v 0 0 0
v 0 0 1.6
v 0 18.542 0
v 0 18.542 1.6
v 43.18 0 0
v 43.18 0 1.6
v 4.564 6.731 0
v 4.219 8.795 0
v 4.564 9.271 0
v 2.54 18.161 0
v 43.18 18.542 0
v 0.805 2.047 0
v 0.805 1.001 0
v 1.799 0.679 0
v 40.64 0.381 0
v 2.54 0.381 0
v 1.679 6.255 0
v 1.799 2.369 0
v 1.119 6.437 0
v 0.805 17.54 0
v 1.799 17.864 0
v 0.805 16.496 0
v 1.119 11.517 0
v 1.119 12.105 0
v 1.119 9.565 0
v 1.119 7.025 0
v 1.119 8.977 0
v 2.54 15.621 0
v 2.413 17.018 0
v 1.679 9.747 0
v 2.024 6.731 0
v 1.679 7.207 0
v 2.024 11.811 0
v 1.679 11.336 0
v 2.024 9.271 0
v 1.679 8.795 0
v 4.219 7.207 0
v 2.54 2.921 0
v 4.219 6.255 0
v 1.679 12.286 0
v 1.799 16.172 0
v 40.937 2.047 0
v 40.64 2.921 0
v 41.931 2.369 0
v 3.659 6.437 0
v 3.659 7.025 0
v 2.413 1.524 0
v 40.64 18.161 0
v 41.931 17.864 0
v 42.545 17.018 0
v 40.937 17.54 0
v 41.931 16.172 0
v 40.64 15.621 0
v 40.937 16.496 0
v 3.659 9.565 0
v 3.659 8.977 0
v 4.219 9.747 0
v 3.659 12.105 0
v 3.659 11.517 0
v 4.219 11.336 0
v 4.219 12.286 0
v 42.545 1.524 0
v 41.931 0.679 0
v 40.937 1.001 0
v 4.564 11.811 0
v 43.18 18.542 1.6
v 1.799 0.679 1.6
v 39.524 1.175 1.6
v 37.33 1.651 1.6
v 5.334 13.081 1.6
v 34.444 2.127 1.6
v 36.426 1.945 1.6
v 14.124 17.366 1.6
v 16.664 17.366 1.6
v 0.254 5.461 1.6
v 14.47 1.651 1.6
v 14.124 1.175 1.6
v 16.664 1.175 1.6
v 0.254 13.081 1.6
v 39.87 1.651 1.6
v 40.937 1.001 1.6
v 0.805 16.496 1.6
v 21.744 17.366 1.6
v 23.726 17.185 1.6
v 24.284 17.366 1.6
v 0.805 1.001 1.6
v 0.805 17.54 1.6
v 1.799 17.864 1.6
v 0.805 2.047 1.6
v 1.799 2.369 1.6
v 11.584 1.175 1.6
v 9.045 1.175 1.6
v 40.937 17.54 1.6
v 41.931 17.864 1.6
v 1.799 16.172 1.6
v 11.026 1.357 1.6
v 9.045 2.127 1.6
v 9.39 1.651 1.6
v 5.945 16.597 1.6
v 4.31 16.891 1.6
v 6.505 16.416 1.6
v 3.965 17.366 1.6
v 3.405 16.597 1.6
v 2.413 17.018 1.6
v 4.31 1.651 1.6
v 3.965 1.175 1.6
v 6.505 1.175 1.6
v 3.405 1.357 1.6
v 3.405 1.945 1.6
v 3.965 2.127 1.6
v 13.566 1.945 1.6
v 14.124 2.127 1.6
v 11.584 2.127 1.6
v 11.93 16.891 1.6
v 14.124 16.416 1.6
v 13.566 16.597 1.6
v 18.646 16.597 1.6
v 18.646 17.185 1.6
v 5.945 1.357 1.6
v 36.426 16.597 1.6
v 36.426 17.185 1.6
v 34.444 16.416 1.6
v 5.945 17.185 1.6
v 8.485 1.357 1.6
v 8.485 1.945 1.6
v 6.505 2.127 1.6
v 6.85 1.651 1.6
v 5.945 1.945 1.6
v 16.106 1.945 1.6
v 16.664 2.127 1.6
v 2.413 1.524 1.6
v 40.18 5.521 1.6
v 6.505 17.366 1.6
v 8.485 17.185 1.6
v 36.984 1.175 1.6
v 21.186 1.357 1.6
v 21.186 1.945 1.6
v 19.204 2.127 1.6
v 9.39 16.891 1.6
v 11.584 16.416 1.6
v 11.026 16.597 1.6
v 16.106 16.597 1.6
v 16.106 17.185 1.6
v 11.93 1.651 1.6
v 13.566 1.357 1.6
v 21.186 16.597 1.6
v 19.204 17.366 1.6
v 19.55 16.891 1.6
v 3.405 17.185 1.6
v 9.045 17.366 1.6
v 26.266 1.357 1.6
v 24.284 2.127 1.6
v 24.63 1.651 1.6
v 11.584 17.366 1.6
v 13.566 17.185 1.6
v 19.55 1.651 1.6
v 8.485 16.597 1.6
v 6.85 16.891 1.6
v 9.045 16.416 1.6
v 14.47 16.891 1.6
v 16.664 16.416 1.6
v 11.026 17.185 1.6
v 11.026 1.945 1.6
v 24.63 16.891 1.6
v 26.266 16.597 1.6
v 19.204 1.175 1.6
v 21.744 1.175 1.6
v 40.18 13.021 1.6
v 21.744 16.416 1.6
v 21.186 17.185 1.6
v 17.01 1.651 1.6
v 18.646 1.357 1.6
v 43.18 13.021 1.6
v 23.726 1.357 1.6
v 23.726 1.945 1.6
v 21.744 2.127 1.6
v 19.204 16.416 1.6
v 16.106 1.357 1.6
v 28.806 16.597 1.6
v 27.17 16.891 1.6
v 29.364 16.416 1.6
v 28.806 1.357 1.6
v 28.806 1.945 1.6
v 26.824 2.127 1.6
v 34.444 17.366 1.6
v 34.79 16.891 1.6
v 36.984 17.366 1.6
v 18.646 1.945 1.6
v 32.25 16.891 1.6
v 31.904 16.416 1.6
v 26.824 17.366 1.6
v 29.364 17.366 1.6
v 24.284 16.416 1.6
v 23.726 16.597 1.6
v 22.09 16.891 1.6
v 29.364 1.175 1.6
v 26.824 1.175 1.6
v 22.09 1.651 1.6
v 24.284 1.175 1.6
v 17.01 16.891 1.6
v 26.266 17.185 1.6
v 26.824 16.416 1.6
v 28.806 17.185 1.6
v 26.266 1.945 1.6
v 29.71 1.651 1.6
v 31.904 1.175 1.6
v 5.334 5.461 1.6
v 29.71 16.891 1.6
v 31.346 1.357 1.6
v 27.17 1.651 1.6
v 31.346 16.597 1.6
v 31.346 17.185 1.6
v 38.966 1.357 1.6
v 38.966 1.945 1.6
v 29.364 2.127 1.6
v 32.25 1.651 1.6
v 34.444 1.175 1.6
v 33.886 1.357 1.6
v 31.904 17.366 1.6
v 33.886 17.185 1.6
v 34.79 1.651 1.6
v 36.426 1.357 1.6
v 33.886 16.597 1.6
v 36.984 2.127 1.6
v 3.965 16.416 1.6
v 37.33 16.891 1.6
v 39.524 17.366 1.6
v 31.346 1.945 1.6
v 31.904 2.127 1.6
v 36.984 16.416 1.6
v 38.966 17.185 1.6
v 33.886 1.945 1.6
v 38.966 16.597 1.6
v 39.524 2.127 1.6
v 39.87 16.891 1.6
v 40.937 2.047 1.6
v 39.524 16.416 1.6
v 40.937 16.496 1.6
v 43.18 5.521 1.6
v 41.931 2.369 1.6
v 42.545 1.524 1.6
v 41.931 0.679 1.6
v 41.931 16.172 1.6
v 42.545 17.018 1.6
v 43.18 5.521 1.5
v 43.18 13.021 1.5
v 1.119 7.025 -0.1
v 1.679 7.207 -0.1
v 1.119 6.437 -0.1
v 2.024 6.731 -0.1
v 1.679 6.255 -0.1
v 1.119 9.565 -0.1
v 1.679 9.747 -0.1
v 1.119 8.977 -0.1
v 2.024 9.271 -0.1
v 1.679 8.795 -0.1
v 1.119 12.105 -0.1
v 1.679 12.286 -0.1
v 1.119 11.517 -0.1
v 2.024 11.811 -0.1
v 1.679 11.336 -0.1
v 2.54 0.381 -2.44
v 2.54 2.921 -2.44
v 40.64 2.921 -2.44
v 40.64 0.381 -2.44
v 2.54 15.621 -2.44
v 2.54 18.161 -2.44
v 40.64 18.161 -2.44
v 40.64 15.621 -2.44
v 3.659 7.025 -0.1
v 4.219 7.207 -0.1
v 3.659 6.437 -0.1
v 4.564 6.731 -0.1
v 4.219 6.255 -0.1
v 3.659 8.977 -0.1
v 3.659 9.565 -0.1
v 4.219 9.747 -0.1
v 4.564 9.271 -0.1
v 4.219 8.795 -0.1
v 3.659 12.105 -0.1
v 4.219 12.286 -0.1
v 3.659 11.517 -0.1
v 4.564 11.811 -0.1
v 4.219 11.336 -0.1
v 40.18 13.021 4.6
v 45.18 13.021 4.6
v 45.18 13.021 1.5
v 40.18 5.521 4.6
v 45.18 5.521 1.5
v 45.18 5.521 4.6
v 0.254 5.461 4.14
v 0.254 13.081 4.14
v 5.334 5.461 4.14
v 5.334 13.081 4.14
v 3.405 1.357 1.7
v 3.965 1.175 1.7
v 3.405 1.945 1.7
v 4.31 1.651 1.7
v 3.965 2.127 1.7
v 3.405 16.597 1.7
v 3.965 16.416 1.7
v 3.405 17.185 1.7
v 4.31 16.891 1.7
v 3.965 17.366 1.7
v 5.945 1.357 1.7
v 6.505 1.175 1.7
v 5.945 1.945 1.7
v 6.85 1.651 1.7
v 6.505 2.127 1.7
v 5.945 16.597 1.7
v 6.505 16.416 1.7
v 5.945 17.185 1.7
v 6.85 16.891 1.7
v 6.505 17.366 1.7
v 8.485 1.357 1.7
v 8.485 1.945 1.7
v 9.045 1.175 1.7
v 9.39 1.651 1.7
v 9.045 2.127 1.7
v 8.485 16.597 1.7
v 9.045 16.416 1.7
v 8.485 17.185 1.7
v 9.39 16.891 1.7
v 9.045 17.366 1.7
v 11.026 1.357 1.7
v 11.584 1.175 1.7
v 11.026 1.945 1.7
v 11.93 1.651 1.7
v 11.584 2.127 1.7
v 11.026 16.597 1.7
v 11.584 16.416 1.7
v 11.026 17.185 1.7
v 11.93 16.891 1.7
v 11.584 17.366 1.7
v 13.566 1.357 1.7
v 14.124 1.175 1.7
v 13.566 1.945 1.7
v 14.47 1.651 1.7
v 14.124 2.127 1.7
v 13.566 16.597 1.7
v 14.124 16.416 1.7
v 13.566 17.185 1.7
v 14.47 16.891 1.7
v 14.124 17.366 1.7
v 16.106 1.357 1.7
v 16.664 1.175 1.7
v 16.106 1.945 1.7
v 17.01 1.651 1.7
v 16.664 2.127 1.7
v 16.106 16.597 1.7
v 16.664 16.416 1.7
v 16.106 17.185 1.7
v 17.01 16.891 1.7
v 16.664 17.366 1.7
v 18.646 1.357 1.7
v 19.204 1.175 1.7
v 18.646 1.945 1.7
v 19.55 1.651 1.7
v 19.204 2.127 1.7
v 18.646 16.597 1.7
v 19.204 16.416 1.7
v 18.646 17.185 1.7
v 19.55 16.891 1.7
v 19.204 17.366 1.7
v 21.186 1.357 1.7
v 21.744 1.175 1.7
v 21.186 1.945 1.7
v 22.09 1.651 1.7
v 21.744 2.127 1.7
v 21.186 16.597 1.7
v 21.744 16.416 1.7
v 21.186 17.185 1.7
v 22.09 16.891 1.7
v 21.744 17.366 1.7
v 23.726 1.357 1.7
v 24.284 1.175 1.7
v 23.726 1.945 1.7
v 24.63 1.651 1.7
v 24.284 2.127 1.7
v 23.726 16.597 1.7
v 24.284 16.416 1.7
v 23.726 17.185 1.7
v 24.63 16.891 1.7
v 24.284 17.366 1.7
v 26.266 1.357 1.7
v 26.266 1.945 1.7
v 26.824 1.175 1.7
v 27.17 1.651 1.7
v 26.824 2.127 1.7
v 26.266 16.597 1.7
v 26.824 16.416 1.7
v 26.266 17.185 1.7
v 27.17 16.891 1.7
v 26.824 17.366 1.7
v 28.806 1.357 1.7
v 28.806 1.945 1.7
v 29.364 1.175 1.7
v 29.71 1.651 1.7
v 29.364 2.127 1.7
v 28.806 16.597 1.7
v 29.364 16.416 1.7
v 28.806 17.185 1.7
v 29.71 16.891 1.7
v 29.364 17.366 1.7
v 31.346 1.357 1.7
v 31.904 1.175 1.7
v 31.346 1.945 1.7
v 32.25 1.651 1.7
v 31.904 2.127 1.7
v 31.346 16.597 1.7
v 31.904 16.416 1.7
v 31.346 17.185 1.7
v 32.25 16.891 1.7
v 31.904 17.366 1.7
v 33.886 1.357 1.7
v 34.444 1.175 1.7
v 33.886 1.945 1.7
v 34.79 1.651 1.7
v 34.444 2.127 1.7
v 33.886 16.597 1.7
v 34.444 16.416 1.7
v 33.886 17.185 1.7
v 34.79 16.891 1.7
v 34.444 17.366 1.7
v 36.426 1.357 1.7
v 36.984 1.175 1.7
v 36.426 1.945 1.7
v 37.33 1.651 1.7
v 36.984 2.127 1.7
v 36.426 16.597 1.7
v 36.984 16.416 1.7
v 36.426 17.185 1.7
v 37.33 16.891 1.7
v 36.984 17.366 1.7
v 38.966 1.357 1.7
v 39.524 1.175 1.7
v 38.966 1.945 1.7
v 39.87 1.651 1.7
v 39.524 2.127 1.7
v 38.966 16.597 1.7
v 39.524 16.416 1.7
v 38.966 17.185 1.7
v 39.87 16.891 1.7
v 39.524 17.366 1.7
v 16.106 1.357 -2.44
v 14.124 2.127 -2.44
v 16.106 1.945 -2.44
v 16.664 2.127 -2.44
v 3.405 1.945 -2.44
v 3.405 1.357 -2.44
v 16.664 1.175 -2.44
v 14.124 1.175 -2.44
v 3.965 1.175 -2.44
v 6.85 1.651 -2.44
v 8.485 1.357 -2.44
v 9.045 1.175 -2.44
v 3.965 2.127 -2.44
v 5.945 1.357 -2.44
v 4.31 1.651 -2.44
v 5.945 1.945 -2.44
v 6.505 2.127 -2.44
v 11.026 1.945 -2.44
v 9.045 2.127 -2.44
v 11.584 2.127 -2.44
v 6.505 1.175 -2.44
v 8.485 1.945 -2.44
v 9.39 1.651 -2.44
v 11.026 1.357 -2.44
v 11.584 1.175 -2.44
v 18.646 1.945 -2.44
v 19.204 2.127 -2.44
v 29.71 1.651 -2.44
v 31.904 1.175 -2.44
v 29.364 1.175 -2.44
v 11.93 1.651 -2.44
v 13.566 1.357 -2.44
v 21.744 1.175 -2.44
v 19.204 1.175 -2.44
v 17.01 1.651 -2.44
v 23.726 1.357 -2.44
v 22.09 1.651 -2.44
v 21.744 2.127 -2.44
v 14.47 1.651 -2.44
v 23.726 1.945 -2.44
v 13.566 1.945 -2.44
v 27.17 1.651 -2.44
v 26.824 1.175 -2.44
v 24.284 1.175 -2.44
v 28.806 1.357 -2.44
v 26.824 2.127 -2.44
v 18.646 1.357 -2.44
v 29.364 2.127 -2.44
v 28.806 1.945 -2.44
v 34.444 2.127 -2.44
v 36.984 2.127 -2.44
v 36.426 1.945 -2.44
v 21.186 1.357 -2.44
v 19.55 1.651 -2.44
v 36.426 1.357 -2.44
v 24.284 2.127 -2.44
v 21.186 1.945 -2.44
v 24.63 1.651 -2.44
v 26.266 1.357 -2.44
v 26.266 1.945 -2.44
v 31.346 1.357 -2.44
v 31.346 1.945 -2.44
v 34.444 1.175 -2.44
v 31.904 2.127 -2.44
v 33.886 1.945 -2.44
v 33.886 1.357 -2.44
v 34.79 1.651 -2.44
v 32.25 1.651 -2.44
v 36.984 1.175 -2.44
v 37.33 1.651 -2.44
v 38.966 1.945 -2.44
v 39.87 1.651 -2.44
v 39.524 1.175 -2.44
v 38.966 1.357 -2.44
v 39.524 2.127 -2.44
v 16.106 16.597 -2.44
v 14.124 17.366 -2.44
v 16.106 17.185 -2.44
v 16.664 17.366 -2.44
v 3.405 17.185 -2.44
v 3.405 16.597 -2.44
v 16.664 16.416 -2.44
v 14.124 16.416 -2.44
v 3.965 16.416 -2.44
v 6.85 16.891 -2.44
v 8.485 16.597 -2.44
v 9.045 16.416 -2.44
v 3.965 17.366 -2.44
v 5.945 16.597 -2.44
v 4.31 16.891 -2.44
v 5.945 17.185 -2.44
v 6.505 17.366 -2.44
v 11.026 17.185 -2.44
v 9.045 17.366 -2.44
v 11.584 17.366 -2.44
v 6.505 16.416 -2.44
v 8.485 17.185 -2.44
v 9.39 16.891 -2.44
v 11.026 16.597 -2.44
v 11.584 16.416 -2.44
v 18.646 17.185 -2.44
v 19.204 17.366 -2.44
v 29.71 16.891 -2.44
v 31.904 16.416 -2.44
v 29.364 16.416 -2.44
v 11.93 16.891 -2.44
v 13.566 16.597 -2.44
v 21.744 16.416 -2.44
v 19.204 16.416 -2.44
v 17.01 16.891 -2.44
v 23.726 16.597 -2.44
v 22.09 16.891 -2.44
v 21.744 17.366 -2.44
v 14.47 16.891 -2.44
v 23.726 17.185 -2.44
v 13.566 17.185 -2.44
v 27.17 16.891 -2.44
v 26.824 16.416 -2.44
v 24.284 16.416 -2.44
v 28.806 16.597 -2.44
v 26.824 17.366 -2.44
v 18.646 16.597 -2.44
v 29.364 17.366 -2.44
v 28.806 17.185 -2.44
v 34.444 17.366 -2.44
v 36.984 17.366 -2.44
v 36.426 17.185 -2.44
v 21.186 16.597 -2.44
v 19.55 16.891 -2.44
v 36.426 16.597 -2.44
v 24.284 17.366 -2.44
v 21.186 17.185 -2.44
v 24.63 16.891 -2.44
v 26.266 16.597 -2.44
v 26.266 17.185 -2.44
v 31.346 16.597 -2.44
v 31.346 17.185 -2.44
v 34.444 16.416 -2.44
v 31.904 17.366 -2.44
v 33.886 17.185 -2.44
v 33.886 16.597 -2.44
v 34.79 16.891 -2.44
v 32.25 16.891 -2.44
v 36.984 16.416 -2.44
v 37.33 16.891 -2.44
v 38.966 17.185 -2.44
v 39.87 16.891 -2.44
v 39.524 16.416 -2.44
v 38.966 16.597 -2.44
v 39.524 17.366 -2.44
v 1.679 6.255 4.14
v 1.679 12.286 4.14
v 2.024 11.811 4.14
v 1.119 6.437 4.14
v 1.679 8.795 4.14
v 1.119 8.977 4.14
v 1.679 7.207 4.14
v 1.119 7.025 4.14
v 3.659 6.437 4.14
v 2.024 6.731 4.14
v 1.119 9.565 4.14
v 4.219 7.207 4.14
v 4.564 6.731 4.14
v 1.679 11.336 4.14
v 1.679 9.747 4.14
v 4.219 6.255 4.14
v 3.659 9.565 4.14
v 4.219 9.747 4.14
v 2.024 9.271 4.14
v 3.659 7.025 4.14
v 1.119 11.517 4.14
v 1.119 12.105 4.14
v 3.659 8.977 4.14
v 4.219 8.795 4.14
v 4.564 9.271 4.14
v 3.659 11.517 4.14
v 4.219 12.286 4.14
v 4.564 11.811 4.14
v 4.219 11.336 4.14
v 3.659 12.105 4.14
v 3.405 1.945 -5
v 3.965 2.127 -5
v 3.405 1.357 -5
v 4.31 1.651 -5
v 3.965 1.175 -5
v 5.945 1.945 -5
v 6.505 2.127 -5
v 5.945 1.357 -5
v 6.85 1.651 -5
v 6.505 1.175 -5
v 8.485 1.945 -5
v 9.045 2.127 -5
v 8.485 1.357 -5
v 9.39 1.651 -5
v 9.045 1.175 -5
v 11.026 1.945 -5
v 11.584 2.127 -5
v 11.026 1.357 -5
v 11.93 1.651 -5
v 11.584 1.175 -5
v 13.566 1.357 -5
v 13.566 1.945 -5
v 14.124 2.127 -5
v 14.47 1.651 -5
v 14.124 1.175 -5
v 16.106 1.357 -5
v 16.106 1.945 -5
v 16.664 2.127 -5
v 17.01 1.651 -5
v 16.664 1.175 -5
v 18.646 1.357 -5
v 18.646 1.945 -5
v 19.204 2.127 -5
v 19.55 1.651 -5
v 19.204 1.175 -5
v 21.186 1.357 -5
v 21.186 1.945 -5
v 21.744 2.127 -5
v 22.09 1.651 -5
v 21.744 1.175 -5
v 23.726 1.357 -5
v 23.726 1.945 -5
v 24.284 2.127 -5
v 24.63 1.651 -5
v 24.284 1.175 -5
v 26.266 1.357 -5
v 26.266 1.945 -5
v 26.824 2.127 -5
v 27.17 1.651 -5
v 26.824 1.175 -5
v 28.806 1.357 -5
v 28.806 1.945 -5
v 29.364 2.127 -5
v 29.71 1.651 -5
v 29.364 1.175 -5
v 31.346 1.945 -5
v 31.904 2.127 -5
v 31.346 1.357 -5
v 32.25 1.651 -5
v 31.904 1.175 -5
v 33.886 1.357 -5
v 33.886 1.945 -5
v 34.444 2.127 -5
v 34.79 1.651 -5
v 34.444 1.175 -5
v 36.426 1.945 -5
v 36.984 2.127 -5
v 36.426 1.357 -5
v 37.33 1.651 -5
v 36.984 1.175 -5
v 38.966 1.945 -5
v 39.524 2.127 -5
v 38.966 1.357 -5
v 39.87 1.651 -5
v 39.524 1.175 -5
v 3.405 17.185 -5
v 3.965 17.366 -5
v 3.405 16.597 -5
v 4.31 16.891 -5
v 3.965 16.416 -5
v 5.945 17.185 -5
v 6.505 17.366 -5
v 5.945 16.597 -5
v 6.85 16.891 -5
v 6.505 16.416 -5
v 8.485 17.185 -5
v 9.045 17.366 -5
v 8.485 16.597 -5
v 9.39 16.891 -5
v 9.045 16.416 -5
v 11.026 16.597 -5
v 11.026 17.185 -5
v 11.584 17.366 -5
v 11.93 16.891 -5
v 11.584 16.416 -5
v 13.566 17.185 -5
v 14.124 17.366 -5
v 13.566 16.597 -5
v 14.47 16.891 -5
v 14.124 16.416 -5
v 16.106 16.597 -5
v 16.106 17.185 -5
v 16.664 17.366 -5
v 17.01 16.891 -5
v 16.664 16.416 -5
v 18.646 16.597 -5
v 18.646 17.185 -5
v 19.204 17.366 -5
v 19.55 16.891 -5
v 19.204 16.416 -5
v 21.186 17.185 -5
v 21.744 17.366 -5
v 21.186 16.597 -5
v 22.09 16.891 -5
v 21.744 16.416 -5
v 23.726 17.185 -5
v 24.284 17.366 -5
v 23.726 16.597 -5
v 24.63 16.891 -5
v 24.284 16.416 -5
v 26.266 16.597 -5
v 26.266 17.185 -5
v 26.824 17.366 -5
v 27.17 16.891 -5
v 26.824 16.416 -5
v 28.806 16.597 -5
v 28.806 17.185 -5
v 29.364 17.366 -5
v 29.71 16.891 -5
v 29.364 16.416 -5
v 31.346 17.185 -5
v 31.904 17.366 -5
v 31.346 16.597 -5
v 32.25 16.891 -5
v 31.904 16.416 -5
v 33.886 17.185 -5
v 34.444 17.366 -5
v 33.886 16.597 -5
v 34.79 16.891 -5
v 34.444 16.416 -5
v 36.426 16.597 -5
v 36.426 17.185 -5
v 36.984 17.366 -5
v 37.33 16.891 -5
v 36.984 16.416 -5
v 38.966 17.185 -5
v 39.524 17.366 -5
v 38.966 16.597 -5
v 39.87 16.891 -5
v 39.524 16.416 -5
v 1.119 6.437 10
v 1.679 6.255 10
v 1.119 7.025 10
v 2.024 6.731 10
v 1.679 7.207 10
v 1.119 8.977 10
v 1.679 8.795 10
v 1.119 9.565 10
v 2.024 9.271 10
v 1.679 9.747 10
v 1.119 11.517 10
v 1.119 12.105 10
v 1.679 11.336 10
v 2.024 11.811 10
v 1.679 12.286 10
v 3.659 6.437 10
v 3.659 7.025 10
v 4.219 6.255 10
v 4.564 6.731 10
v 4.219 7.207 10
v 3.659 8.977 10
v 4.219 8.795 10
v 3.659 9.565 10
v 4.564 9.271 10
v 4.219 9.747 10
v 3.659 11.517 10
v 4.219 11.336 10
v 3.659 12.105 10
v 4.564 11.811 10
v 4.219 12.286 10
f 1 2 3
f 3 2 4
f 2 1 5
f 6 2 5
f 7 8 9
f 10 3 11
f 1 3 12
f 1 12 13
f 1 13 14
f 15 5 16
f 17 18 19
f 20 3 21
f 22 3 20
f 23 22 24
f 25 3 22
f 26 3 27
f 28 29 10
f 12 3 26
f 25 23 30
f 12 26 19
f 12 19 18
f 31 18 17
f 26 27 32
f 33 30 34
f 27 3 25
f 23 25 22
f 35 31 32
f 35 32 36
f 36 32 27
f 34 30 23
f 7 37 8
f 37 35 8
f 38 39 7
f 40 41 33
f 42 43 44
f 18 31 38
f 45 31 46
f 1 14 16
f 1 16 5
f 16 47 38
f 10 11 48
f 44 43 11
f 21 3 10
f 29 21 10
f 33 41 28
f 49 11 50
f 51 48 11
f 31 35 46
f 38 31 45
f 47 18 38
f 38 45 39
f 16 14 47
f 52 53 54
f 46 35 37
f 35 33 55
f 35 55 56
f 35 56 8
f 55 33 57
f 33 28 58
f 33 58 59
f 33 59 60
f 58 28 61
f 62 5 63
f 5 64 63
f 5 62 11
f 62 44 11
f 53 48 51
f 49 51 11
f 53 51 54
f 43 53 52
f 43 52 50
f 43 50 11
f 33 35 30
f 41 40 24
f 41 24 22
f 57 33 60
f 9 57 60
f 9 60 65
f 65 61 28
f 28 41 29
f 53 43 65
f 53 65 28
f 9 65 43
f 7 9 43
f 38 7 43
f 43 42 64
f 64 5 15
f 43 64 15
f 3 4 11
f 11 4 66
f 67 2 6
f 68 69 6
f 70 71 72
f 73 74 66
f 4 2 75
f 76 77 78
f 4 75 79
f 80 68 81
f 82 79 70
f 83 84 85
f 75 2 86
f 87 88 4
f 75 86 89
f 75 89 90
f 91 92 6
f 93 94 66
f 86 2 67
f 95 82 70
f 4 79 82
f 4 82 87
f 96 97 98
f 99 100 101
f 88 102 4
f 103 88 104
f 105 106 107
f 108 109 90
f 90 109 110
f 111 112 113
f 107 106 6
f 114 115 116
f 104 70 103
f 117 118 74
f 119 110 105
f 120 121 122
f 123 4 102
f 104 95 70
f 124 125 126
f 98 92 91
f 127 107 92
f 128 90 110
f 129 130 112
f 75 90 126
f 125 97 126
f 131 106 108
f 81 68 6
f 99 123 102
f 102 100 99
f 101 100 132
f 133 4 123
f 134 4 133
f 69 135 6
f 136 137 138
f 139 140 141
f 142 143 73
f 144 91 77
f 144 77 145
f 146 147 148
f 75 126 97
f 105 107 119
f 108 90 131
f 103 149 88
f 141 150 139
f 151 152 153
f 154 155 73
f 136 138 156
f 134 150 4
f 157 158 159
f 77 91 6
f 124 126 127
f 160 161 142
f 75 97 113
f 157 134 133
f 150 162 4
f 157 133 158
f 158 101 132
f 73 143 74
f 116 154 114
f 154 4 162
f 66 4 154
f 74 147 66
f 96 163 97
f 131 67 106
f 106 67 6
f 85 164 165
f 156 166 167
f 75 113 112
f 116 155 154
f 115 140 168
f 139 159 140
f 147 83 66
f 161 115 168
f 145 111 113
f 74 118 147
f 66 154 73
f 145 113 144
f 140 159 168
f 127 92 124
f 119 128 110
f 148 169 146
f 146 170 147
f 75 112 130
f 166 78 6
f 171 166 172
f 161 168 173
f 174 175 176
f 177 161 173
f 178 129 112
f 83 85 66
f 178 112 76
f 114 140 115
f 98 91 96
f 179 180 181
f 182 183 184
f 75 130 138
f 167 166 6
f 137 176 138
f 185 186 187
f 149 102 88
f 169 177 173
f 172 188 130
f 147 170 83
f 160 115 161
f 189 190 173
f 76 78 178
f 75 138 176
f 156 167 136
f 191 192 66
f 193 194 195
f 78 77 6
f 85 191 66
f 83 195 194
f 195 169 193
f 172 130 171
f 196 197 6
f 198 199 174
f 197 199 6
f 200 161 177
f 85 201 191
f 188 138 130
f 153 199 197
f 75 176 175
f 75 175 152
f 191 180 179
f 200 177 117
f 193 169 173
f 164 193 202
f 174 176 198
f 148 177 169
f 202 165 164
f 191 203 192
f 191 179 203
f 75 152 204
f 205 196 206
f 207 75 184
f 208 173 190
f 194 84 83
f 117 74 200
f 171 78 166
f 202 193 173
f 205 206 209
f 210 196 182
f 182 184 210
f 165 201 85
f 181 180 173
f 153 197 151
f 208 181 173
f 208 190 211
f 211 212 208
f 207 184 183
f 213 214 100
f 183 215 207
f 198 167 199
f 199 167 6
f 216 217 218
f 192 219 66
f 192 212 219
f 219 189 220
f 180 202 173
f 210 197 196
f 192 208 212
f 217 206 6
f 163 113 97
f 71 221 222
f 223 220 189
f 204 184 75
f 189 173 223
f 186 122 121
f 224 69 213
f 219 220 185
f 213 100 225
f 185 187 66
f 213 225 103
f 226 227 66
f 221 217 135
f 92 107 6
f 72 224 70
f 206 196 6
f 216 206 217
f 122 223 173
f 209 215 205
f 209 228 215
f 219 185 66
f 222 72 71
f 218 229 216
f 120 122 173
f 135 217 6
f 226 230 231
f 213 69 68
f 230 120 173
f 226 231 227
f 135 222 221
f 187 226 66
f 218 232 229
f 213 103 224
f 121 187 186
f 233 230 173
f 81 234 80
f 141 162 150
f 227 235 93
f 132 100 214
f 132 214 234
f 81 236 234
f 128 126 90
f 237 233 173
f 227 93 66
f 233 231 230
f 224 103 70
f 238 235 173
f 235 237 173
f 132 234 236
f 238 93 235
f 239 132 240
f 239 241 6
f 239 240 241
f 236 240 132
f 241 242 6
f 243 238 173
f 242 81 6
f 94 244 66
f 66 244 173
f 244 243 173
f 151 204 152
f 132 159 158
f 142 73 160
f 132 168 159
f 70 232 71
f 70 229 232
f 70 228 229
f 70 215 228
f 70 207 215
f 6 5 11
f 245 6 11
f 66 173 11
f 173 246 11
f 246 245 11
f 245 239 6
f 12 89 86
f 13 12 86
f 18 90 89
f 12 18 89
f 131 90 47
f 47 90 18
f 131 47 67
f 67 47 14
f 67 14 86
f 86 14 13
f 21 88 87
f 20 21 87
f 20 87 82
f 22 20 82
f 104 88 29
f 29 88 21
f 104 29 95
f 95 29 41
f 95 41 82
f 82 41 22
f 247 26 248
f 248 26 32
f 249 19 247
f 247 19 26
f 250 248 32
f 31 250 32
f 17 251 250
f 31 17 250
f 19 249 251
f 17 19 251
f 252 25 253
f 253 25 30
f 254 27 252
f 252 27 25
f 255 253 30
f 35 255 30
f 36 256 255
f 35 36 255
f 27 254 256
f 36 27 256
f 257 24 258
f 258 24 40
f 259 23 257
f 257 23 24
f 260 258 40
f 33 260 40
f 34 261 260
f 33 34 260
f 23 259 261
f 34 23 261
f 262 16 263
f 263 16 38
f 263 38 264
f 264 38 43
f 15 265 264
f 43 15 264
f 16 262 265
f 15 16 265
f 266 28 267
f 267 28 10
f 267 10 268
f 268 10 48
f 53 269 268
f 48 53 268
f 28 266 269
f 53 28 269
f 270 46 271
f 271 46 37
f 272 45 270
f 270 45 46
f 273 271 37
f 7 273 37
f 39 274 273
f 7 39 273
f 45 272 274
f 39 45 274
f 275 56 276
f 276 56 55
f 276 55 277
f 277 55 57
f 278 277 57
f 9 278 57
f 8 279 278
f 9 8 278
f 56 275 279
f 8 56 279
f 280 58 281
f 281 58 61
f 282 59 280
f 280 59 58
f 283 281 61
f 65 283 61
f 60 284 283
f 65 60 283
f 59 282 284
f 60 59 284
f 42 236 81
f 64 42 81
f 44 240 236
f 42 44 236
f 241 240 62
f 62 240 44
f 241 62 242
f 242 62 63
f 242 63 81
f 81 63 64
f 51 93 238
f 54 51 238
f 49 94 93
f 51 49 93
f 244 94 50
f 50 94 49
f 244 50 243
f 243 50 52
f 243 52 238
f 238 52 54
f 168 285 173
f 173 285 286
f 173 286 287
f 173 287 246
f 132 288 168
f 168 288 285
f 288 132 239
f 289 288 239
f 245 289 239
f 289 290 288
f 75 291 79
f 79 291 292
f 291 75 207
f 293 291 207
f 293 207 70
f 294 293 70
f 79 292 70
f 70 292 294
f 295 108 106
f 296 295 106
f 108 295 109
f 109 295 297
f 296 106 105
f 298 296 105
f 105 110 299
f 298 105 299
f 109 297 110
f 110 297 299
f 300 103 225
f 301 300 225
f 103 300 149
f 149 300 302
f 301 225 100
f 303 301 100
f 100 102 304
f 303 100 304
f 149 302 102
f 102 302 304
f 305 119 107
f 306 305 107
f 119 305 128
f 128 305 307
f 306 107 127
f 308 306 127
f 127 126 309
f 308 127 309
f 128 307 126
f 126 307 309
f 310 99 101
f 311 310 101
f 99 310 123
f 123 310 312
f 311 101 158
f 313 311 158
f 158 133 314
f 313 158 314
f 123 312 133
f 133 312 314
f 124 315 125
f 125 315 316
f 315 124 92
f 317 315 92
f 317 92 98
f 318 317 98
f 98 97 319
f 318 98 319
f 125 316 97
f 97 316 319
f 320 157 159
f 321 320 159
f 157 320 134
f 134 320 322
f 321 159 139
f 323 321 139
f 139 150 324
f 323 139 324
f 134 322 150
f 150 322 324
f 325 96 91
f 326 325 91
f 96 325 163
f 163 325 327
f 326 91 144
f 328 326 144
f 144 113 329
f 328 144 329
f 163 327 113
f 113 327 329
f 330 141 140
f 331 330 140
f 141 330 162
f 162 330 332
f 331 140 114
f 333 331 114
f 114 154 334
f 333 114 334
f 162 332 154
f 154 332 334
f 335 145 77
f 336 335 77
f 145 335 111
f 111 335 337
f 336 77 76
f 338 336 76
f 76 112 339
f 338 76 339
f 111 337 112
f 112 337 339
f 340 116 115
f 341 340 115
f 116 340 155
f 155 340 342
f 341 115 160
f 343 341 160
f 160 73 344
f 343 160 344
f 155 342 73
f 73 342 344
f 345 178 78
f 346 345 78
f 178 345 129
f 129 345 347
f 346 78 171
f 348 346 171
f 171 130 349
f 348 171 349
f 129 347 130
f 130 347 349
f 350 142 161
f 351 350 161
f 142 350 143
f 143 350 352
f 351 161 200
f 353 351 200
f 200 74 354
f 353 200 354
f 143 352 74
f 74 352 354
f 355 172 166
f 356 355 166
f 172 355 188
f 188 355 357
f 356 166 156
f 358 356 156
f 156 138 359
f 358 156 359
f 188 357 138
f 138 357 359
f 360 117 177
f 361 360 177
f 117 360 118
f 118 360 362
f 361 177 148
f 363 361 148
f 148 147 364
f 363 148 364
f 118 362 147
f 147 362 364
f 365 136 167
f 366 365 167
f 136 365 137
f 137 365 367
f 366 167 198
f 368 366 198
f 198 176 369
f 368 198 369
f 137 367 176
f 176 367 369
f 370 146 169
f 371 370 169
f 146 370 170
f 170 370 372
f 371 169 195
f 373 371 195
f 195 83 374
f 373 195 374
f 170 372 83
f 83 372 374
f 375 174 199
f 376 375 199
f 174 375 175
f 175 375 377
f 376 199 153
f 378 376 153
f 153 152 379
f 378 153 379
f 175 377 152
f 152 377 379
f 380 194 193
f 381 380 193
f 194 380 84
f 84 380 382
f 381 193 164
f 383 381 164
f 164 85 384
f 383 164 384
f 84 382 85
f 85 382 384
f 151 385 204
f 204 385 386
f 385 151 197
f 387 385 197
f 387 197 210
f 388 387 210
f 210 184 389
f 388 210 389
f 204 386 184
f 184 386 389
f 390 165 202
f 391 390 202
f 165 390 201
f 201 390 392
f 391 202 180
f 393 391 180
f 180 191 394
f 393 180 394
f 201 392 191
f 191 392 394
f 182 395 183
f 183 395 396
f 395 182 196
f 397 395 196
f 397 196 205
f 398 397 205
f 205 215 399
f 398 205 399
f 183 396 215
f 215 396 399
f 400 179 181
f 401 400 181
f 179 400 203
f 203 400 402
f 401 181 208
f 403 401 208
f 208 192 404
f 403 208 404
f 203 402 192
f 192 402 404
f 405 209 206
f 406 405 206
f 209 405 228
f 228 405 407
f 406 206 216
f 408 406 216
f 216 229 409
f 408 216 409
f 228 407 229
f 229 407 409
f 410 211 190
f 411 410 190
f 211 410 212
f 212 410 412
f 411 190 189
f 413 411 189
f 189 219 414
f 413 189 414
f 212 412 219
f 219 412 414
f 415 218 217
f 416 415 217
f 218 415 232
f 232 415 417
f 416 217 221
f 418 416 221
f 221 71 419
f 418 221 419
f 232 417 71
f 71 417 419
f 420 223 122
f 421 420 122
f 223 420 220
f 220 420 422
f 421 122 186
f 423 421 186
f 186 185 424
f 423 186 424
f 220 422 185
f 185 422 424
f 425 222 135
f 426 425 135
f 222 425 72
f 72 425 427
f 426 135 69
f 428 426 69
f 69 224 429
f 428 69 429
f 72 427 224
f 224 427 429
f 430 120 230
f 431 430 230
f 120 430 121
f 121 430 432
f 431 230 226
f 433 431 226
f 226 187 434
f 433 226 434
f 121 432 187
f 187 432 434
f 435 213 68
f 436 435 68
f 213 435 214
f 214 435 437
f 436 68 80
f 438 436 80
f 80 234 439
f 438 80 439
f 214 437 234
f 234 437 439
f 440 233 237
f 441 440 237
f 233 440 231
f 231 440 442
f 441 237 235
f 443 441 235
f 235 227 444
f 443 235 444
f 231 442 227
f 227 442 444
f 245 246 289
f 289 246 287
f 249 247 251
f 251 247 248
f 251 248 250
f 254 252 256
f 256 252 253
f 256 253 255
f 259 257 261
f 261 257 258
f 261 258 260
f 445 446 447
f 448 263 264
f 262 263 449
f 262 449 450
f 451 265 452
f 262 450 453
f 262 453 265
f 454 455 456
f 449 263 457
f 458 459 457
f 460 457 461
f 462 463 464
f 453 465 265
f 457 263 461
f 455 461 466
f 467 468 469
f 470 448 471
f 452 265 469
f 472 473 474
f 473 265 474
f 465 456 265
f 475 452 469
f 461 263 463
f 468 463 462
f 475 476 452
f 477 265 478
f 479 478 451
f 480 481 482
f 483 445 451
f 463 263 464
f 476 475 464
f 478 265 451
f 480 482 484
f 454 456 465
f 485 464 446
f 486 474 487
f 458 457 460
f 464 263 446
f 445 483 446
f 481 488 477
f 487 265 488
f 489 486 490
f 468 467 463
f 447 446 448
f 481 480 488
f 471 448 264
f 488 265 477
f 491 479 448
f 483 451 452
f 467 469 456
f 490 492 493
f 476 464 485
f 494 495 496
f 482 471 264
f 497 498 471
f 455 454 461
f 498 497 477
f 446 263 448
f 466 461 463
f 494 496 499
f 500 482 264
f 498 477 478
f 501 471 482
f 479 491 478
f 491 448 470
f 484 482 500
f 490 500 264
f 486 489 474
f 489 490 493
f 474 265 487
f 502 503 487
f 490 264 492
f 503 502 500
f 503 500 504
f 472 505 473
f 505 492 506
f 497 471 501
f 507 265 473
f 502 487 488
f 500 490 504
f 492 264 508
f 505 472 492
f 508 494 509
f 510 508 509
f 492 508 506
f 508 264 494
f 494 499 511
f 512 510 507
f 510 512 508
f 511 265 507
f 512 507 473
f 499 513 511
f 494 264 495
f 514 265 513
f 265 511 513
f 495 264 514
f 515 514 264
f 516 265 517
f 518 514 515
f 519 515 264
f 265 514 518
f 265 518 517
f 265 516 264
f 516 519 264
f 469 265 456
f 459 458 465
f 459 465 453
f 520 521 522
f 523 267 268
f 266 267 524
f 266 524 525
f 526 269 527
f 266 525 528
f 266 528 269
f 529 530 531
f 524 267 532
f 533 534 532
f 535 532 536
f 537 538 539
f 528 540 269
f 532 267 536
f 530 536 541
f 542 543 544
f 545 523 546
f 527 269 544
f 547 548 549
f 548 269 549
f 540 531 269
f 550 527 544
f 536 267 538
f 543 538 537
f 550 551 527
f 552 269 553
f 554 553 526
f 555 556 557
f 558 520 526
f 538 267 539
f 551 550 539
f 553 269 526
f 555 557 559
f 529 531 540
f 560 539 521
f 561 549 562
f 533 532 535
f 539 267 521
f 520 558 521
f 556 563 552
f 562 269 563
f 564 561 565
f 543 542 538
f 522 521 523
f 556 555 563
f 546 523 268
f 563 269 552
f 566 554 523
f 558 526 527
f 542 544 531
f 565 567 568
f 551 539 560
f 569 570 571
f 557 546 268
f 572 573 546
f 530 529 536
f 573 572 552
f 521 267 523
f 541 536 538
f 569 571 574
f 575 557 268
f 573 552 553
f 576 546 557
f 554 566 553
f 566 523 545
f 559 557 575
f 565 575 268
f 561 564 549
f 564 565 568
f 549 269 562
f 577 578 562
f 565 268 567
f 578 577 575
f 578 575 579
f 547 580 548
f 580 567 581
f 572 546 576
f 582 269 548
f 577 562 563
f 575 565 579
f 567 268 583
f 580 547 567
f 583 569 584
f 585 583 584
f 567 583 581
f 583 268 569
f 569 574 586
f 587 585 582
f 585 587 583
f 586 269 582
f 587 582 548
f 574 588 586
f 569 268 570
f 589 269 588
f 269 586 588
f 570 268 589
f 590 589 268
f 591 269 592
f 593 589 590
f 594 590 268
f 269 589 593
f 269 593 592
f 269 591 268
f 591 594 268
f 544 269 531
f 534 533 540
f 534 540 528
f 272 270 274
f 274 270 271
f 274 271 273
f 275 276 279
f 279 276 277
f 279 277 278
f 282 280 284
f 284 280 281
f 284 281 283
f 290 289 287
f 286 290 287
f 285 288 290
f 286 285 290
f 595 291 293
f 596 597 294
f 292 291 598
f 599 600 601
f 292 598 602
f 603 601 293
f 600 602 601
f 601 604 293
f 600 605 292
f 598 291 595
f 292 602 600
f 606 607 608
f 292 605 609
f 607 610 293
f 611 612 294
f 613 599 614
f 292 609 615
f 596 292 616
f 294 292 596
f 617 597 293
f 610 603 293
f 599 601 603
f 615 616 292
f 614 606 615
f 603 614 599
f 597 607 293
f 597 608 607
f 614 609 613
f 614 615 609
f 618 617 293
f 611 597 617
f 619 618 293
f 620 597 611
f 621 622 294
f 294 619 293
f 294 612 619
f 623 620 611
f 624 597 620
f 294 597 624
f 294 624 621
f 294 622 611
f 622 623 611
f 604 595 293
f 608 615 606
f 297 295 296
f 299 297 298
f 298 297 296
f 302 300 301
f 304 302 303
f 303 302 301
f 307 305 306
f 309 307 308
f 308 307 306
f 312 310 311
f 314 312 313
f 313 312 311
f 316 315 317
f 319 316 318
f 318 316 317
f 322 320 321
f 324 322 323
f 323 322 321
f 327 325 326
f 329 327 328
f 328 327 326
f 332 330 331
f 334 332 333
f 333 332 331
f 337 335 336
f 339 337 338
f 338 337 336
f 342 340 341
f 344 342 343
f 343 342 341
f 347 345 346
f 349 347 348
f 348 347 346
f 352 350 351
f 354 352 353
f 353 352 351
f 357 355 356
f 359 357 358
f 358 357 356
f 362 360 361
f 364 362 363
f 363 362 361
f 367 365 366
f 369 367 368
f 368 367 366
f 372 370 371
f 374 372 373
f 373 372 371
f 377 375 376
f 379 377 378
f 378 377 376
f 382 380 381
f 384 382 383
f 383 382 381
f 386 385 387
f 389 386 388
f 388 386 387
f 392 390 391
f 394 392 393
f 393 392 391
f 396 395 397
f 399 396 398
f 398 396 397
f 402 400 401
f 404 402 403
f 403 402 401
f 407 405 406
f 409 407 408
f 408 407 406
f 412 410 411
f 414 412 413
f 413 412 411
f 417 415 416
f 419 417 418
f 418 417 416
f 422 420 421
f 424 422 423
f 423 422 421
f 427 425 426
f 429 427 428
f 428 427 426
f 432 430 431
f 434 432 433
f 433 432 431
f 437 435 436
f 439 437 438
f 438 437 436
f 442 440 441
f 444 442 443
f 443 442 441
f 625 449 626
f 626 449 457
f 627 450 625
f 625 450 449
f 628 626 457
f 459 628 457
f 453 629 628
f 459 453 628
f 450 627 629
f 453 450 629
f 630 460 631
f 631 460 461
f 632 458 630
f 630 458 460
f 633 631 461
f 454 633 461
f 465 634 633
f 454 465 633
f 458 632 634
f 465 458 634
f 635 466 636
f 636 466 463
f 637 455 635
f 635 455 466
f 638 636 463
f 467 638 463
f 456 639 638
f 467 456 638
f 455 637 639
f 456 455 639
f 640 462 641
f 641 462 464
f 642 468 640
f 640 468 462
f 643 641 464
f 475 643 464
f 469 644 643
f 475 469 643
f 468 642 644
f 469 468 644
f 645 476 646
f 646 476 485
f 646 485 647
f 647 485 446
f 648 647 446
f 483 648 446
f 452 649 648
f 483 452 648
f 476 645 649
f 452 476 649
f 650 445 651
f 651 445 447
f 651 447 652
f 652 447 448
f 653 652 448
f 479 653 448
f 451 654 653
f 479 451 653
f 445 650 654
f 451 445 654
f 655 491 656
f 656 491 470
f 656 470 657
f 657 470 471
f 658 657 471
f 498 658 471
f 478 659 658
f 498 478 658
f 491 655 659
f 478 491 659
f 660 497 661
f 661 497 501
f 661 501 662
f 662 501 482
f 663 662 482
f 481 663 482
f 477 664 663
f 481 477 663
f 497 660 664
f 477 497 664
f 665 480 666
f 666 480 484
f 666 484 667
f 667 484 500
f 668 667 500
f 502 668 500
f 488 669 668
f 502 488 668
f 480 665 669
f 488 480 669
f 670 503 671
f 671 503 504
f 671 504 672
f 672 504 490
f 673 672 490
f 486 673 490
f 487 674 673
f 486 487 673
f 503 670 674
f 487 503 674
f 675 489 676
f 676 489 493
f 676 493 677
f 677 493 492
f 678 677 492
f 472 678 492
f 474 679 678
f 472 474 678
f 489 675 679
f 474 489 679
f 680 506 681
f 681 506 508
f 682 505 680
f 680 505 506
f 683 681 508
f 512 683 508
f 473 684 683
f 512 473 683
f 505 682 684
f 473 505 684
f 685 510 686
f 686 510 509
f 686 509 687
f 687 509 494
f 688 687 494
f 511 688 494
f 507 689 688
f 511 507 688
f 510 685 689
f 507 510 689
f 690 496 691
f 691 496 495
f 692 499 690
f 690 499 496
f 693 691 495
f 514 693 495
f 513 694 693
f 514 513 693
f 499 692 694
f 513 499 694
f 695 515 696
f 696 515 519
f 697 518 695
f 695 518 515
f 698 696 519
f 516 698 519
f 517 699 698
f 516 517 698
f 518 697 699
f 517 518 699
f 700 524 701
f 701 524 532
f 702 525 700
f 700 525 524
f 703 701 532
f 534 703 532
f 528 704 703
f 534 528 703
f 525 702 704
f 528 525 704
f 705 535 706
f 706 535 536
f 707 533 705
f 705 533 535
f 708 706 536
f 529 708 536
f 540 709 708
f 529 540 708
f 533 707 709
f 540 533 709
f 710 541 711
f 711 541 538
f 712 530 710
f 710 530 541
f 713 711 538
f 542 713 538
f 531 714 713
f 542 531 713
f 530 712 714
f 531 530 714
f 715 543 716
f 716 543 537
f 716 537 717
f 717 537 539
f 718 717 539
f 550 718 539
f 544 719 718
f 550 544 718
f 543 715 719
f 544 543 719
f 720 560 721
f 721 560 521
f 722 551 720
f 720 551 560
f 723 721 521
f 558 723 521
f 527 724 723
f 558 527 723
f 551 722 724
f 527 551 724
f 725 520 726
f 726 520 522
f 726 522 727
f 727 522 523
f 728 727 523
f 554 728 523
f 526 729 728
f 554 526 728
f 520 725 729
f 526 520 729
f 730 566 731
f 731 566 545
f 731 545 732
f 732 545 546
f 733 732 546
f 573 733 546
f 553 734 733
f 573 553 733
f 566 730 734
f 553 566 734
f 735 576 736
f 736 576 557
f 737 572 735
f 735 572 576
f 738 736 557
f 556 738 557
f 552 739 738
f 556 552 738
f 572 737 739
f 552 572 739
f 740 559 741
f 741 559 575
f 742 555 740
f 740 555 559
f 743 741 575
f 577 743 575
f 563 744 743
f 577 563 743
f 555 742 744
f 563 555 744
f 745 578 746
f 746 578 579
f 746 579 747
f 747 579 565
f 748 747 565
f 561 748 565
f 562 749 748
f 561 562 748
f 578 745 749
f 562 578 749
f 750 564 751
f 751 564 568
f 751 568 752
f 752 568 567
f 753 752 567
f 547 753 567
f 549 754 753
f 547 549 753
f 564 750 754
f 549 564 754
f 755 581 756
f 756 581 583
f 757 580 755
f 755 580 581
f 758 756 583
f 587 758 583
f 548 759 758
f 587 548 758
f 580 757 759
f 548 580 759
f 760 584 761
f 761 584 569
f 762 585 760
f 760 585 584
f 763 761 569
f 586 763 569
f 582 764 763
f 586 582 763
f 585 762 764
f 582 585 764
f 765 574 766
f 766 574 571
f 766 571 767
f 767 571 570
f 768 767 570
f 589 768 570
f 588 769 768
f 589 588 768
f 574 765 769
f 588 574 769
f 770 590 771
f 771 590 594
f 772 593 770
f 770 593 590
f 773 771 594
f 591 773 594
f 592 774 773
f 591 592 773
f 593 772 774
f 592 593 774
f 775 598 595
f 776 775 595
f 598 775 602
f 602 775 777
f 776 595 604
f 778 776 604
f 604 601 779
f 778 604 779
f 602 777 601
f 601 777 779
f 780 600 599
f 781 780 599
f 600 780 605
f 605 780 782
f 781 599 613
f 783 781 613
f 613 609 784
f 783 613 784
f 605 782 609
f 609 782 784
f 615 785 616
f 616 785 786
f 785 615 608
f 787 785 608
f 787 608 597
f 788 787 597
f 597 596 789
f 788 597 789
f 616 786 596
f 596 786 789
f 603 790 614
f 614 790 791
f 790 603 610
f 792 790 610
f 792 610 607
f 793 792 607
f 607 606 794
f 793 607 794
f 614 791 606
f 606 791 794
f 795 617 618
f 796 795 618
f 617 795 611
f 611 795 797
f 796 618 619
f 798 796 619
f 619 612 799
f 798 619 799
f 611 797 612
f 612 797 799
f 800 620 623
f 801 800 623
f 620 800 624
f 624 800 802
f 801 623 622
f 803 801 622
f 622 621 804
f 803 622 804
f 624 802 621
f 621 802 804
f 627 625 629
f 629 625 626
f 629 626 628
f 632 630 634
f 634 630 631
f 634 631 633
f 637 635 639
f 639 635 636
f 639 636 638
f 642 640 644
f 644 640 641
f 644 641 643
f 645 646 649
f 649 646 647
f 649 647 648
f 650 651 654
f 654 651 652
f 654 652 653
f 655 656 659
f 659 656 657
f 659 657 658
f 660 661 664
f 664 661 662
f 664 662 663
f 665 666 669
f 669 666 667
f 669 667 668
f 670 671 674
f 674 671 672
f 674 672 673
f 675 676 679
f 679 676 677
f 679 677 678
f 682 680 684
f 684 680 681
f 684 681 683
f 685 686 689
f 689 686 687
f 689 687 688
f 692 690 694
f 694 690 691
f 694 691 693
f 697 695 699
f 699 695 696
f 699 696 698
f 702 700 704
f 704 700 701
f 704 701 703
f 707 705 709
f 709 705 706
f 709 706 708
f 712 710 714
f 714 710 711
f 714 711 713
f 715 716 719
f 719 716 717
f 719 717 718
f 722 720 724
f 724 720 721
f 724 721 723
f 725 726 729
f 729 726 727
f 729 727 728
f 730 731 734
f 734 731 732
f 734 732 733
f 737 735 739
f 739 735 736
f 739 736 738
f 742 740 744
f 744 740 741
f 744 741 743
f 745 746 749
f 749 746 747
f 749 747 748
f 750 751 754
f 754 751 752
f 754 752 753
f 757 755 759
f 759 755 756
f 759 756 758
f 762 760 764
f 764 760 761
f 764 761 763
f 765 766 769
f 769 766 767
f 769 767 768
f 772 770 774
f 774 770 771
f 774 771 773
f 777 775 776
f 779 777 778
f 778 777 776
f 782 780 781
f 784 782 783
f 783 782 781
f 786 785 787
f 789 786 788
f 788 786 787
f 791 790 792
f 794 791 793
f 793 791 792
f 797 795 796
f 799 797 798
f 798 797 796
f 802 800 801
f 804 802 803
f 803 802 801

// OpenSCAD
/* arduino_nano.scad
 *
 * Copyright (C) Graham Jones, 2013 
 * (based on arduino.scad by Jestin Stoffel 2012)
 *
 * This library is free software; you can redistribute it and/or
 * modify it under the terms of the GNU Library General Public
 * License as published by the Free Software Foundation; either
 * version 2 of the License, or (at your option) any later version.
 *
 * This library is distributed in the hope that it will be useful,
 * but WITHOUT ANY WARRANTY; without even the implied warranty of
 * MERCHANTABILITY or FITNESS FOR A PARTICULAR PURPOSE.  See the GNU
 * Library General Public License for more details.
 *
 * You should have received a copy of the GNU Library General Public
 * License along with this library; if not, write to the Free
 * Software Foundation, Inc., 675 Mass Ave, Cambridge, MA 02139, USA.
 */

/*
 * Usage - in your file do include <arduino_nano.scad>, then call
 * Arduino_Nano();
 */


Arduino_Nano(1,1);

/********************************************************************
 * Dimensions from 
 *   http://arduino.cc/en/uploads/Main/ArduinoNanoManual23.pdf
 *********************************************************************
 */
// Main board
x = 1.7 * 25.4;  // length of board
y = 0.73 * 25.4; // width of board in mm
th = 1.6;  // mm

// Mounting Holes
hole_off = 0.06 * 25.4; // offset from edges of board in mmm
hole_dia = 0.07 * 25.4; // hole diameter in mmm
hole_h   = 10;				// length of cylinder to make holes

// Headers
head_xoff = 0.15 * 25.4; // offset of first header pin along x axis.
head_yoff = 0.5*(0.73-0.6) * 25.4; // offset of header in y direction.
head_pinh = 5;           // height of pin in mm.
head_pind = 1;           // diameter of header pin in mm
head_pinsep = 0.1 * 25.4; // separation between header pins.
head_npin   = 15;         // number of pins. 

// ICSP
icsp_xoff = 0.06 * 25.4;  // my guess
icsp_nxpin = 2;           // number of pins in x direction
icsp_nypin = 3;           // number of pins in y direction.
icsp_pinsep = 0.1 * 25.4; // pin separation
icsp_pinh = 10;
icsp_pind  = 1;			  // icsp pin diameter
icsp_yoff = (y - icsp_pinsep * (icsp_nypin-1)) / 2;

pin_base_x = 0.1*25.4;  // size of square base around pins
pin_base_z = 0.1*25.4;  // height of square base around pins

usb_x = 5; 
usb_y = 7.5;
usb_z = 3;
usb_off = 2;  // How much it sticks out from the board in x direction.

// Misc
tol = 0.1;						// general tolerance to oversize things a bit.


/* Main module to draw the complete arduino nano from components */
module Arduino_Nano(headers=1, holes=0) {

	if (headers==1)
		union() {
			board(holes);
			headers();
		}
	else
		difference() {
			union() {
				board(holes);
			}
			headers();
		}



}


module usb() {
	translate([x+usb_off-usb_x,0.5*(y-usb_y),th-tol])
		cube([usb_x,usb_y,usb_z+tol]);

}

module icsp() {
	// Pins
	for (xpinNo = [0:icsp_nxpin-1]) {
		for (ypinNo = [0:icsp_nypin-1]) {
			translate([icsp_xoff+icsp_pinsep*xpinNo,
							icsp_yoff+icsp_pinsep*ypinNo,
							-tol])
				cylinder(r=icsp_pind/2, h=icsp_pinh+tol);
		}
	}
	// Plastic Base
	color([0,0,0])
		translate([icsp_xoff-pin_base_x/2,
						icsp_yoff-pin_base_x/2,
						th-tol])
			cube([icsp_nxpin*pin_base_x,
					icsp_nypin*pin_base_x,
					pin_base_z+tol]);
}

module headers() {
	// Pins
	for (pinNo = [0:head_npin-1]) {
		translate([head_xoff+head_pinsep*pinNo,head_yoff,-1*head_pinh])
			cylinder(r=head_pind/2, h=head_pinh+th+tol);
		translate([head_xoff+head_pinsep*pinNo,y-head_yoff,-1*head_pinh])
			cylinder(r=head_pind/2, h=head_pinh+th+tol);
	}
	// Plastic Base
	color([0,0,0])
		translate([head_xoff-pin_base_x/2,
						head_yoff-pin_base_x/2,
						-1*pin_base_z+tol])
			cube([head_npin*pin_base_x,pin_base_x,pin_base_z+tol]);
	color([0,0,0])
		translate([head_xoff-pin_base_x/2,
						y-head_yoff-pin_base_x/2,
						-1*pin_base_z+tol])
			cube([head_npin*pin_base_x,pin_base_x,pin_base_z+tol]);
}

module holes() {
	translate([hole_off,hole_off,-1*hole_h/2])
		cylinder(r=hole_dia/2, h=hole_h);
	translate([x-hole_off,hole_off,-1*hole_h/2])
		cylinder(r=hole_dia/2, h=hole_h);
	translate([x-hole_off,y-hole_off,-1*hole_h/2])
		cylinder(r=hole_dia/2, h=hole_h);
	translate([hole_off,y-hole_off,-1*hole_h/2])
		cylinder(r=hole_dia/2, h=hole_h);
	
}

module board(holes = 0) {
	if (holes==0)
		union() {
			// board itself
			color([0.1,0.1,0.5]) cube([x,y,th]);
			icsp();
			usb();
			holes();
		}
	else 
		difference() {
			// board itself
			union() {
				color([0.1,0.1,0.5]) cube([x,y,th]);
				icsp();
				usb();
			}
			holes();
		}
}
